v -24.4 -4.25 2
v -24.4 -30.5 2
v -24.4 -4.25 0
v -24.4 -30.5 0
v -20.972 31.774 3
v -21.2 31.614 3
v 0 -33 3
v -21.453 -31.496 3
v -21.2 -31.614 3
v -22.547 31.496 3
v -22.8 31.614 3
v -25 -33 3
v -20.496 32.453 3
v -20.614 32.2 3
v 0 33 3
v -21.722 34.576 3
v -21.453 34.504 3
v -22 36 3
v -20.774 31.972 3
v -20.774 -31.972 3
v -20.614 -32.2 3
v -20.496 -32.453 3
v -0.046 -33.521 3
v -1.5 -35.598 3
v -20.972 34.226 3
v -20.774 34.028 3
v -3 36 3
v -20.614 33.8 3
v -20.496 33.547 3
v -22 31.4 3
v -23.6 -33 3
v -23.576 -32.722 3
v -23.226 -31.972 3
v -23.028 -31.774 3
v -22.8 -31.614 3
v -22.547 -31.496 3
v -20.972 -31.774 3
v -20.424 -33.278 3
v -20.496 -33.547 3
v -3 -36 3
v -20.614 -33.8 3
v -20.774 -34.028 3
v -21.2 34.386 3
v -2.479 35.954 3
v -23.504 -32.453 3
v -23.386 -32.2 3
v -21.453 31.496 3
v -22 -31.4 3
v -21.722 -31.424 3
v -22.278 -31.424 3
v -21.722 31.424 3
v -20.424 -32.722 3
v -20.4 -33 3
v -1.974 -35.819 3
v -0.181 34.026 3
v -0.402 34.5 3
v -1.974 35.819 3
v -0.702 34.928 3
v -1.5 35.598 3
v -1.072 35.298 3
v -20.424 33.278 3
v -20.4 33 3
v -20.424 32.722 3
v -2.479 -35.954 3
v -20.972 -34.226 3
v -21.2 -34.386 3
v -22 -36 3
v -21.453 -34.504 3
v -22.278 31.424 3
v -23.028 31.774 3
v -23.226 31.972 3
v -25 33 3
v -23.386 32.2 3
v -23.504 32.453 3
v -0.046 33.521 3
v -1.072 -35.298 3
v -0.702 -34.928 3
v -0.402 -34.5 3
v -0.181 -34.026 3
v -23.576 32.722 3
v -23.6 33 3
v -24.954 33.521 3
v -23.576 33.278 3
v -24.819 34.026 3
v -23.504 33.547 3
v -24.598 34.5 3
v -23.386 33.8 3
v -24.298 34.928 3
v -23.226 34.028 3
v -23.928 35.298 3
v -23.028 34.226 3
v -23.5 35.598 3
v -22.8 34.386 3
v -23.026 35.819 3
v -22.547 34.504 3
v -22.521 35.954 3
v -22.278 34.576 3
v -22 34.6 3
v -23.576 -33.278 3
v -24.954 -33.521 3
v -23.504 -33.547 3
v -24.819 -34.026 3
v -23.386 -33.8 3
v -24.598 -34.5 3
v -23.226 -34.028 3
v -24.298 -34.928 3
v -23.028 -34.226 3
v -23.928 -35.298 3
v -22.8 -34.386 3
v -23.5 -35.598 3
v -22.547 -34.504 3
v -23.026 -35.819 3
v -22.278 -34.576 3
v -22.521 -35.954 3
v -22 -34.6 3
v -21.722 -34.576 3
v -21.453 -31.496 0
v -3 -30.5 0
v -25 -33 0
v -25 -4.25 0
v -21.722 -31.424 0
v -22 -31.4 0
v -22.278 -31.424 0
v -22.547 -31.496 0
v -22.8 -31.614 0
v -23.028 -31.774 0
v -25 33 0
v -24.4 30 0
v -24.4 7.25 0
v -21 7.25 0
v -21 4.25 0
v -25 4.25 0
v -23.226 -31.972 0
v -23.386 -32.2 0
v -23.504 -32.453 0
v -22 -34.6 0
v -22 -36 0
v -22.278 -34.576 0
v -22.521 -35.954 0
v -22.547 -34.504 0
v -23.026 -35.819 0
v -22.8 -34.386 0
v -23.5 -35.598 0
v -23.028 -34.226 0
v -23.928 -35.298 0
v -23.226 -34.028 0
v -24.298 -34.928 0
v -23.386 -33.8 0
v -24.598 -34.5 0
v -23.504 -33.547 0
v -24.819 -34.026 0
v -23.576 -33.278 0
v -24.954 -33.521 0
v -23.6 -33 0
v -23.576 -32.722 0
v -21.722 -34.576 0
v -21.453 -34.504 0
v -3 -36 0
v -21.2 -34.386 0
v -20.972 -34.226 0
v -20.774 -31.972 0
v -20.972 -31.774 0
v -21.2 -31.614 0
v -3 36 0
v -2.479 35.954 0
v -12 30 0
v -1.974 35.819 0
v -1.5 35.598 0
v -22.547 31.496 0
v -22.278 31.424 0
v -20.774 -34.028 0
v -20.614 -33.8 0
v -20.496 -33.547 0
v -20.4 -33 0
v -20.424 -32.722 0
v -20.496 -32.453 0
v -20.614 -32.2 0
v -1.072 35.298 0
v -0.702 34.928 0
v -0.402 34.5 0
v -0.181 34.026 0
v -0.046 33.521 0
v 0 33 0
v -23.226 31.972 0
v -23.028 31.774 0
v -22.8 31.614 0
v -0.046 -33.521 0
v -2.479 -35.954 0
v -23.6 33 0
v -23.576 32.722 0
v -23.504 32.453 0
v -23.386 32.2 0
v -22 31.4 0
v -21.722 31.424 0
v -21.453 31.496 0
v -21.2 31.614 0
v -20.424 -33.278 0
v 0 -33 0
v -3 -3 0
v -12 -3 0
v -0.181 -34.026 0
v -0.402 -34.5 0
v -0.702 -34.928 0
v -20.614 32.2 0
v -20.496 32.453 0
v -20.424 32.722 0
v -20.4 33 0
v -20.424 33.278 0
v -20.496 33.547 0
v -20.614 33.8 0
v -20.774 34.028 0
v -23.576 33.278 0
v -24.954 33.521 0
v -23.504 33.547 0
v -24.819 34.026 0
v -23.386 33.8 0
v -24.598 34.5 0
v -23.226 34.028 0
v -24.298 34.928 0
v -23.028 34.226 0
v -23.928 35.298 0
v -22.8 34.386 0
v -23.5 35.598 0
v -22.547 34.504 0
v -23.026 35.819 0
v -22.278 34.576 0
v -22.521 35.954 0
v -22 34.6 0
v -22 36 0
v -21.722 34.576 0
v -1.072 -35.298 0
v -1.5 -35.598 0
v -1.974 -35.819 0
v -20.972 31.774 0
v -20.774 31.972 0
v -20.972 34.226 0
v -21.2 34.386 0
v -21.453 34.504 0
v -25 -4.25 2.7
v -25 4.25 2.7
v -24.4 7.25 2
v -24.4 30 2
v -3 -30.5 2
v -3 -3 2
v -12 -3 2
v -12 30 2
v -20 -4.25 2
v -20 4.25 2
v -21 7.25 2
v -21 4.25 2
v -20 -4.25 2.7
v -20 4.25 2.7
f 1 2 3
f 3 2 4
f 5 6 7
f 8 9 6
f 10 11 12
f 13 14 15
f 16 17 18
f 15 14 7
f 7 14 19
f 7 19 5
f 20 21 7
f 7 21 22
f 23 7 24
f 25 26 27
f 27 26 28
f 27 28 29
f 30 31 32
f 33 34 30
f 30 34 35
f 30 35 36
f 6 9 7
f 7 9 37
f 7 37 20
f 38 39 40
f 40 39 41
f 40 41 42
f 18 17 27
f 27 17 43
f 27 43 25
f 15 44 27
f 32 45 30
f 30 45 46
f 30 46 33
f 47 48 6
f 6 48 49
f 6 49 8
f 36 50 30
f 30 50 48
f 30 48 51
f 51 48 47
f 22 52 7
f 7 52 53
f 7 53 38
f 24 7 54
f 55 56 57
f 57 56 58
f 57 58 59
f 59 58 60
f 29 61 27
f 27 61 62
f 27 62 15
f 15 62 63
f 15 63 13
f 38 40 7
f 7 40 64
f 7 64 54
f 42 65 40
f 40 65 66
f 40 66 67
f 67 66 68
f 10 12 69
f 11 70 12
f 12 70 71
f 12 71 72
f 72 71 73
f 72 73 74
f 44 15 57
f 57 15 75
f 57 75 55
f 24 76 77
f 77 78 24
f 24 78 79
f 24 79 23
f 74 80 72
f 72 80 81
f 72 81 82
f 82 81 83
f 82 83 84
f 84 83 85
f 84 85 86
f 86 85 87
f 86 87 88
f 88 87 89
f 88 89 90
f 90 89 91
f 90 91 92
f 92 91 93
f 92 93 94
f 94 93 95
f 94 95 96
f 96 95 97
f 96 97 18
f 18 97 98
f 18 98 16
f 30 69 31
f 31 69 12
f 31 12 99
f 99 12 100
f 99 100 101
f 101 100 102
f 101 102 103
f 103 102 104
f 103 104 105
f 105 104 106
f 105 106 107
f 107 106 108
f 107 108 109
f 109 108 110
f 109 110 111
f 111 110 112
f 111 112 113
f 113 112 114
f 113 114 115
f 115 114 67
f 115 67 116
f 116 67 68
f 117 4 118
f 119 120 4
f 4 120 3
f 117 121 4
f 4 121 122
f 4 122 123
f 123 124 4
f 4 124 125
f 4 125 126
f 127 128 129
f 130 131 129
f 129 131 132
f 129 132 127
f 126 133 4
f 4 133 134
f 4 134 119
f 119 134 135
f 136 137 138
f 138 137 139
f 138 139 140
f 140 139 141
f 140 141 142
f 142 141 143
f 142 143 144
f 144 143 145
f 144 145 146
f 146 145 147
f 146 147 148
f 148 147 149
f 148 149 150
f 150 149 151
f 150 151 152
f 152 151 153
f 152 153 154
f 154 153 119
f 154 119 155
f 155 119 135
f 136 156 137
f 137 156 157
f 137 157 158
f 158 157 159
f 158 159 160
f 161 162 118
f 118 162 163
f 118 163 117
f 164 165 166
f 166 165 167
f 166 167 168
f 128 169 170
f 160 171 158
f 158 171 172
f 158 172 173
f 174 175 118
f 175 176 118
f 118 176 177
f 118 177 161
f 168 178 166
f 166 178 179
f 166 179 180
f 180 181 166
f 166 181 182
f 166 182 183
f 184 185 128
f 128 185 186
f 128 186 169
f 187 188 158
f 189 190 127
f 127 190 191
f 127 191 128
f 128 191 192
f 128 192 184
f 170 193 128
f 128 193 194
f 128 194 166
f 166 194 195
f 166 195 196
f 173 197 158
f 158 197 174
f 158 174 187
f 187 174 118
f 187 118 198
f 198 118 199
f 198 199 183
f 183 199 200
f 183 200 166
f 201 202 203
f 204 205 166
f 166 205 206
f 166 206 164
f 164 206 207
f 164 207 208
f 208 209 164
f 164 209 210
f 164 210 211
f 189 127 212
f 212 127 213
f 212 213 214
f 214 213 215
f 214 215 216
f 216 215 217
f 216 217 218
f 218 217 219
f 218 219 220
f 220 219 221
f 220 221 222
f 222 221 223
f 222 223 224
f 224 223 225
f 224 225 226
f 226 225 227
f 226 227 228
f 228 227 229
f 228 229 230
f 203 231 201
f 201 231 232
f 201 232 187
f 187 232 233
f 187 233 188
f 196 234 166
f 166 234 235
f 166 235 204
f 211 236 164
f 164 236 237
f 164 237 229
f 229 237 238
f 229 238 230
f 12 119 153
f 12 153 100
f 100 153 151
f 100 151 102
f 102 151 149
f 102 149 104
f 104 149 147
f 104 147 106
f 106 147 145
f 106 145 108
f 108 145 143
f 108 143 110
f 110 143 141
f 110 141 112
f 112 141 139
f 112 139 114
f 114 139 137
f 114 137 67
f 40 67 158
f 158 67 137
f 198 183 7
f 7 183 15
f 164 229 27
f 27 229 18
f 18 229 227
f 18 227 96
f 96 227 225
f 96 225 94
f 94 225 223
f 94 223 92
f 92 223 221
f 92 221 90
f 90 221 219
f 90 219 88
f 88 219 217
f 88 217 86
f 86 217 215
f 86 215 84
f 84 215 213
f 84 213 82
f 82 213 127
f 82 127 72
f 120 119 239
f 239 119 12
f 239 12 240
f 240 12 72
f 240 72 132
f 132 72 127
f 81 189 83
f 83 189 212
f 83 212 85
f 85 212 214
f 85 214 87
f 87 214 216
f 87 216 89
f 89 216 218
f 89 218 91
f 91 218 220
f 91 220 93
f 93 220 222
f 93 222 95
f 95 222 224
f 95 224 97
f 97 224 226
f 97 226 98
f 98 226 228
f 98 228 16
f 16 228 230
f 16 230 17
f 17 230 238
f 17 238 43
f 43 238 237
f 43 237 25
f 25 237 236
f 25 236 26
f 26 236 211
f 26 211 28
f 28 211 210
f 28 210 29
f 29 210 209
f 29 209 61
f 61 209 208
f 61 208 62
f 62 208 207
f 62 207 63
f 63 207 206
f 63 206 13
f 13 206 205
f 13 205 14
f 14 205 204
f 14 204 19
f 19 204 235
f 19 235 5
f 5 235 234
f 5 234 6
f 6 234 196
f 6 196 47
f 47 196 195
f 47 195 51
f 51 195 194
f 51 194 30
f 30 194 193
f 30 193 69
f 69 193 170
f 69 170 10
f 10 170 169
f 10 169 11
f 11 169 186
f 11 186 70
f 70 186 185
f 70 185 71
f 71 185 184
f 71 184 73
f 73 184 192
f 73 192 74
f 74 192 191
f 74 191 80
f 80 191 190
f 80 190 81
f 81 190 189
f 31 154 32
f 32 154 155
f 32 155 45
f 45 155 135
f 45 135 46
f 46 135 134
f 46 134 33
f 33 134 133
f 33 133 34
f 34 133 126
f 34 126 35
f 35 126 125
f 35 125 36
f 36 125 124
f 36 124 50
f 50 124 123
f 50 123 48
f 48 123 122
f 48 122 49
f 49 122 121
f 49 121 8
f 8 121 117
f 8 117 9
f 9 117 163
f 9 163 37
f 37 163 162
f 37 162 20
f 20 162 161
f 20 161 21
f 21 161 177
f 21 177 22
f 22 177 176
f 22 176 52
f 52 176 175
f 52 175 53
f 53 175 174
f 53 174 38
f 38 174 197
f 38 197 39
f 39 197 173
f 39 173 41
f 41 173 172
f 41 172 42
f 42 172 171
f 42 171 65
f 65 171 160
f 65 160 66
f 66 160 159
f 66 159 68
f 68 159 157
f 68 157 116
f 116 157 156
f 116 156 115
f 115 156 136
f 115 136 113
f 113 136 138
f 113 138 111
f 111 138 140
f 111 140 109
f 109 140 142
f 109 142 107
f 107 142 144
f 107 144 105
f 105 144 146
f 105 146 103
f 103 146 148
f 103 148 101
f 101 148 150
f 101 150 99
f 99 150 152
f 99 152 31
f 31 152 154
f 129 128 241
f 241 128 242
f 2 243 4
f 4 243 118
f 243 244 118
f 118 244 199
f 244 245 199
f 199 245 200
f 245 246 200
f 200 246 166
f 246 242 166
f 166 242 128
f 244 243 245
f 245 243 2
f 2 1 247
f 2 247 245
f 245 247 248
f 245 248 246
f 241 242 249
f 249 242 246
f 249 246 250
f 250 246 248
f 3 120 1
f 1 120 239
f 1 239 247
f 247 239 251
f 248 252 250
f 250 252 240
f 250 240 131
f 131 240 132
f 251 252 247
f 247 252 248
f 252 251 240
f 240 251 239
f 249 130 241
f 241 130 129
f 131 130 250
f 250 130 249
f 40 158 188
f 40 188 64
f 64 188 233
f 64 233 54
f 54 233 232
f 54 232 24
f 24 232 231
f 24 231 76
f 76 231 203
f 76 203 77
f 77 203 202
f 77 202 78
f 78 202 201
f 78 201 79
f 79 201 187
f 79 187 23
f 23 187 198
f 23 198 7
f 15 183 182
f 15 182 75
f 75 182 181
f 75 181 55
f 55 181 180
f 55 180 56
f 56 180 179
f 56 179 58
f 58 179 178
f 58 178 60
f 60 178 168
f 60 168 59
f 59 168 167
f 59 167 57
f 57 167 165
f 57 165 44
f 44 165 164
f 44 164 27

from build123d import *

# Parameters (mm, degrees)
SKETCH1_R           = 1.6
BOSS_EXTRUDE1_DEPTH = 3
CUT_EXTRUDE1_DEPTH  = 2
SKETCH3_W           = 5
SKETCH3_H           = 8.5
CUT_EXTRUDE2_DEPTH  = 2.7
SKETCH4_W           = 4
SKETCH4_H           = 3
BOSS_EXTRUDE2_DEPTH = 2
FILLET1_R           = 3


with BuildPart() as part:
    # Sketch1 → Boss-Extrude1 (new body)
    with BuildSketch(Plane.XY):
        with BuildLine():
            Line((0, 36), (0, -36))
            Line((0, -36), (-22, -36))
            ThreePointArc((-22, -36), (-24.121320344, -35.121320344), (-25, -33))
            Line((-25, -33), (-25, 33))
            ThreePointArc((-25, 33), (-24.121320344, 35.121320344), (-22, 36))
            Line((-22, 36), (0, 36))
        make_face()
        with Locations((-22, 33)):
            Circle(SKETCH1_R, mode=Mode.SUBTRACT)
        with Locations((-22, -33)):
            Circle(SKETCH1_R, mode=Mode.SUBTRACT)
    extrude(amount=BOSS_EXTRUDE1_DEPTH)

    # Sketch2 → Cut-Extrude1 (cut)
    with BuildSketch(Plane(origin=(0, 0, 0), x_dir=(-1, 0, 0), z_dir=(0, 0, -1))):
        Polygon((24.4, 30), (12, 30), (12, -3), (3, -3), (3, -30.5), (24.4, -30.5), align=None)
    extrude(amount=-CUT_EXTRUDE1_DEPTH, mode=Mode.SUBTRACT)

    # Sketch3 → Cut-Extrude2 (cut)
    with BuildSketch(Plane(origin=(0, 0, 0), x_dir=(-1, 0, 0), z_dir=(0, 0, -1))):
        with Locations((22.5, 0)):
            Rectangle(SKETCH3_W, SKETCH3_H)
    extrude(amount=-CUT_EXTRUDE2_DEPTH, mode=Mode.SUBTRACT)

    # Sketch4 → Boss-Extrude2 (add)
    with BuildSketch(Plane(origin=(0, 0, 0), x_dir=(-1, 0, 0), z_dir=(0, 0, -1))):
        with Locations((23, 5.75)):
            Rectangle(SKETCH4_W, SKETCH4_H)
    extrude(amount=-BOSS_EXTRUDE2_DEPTH)

    # Fillet1
    fillet1_edges = [part.edges().sort_by_distance(p)[0] for p in [
        (0, 36, 1.5),
        (0, -36, 1.5),
    ]]
    fillet(fillet1_edges, radius=FILLET1_R)


solid = part.part
